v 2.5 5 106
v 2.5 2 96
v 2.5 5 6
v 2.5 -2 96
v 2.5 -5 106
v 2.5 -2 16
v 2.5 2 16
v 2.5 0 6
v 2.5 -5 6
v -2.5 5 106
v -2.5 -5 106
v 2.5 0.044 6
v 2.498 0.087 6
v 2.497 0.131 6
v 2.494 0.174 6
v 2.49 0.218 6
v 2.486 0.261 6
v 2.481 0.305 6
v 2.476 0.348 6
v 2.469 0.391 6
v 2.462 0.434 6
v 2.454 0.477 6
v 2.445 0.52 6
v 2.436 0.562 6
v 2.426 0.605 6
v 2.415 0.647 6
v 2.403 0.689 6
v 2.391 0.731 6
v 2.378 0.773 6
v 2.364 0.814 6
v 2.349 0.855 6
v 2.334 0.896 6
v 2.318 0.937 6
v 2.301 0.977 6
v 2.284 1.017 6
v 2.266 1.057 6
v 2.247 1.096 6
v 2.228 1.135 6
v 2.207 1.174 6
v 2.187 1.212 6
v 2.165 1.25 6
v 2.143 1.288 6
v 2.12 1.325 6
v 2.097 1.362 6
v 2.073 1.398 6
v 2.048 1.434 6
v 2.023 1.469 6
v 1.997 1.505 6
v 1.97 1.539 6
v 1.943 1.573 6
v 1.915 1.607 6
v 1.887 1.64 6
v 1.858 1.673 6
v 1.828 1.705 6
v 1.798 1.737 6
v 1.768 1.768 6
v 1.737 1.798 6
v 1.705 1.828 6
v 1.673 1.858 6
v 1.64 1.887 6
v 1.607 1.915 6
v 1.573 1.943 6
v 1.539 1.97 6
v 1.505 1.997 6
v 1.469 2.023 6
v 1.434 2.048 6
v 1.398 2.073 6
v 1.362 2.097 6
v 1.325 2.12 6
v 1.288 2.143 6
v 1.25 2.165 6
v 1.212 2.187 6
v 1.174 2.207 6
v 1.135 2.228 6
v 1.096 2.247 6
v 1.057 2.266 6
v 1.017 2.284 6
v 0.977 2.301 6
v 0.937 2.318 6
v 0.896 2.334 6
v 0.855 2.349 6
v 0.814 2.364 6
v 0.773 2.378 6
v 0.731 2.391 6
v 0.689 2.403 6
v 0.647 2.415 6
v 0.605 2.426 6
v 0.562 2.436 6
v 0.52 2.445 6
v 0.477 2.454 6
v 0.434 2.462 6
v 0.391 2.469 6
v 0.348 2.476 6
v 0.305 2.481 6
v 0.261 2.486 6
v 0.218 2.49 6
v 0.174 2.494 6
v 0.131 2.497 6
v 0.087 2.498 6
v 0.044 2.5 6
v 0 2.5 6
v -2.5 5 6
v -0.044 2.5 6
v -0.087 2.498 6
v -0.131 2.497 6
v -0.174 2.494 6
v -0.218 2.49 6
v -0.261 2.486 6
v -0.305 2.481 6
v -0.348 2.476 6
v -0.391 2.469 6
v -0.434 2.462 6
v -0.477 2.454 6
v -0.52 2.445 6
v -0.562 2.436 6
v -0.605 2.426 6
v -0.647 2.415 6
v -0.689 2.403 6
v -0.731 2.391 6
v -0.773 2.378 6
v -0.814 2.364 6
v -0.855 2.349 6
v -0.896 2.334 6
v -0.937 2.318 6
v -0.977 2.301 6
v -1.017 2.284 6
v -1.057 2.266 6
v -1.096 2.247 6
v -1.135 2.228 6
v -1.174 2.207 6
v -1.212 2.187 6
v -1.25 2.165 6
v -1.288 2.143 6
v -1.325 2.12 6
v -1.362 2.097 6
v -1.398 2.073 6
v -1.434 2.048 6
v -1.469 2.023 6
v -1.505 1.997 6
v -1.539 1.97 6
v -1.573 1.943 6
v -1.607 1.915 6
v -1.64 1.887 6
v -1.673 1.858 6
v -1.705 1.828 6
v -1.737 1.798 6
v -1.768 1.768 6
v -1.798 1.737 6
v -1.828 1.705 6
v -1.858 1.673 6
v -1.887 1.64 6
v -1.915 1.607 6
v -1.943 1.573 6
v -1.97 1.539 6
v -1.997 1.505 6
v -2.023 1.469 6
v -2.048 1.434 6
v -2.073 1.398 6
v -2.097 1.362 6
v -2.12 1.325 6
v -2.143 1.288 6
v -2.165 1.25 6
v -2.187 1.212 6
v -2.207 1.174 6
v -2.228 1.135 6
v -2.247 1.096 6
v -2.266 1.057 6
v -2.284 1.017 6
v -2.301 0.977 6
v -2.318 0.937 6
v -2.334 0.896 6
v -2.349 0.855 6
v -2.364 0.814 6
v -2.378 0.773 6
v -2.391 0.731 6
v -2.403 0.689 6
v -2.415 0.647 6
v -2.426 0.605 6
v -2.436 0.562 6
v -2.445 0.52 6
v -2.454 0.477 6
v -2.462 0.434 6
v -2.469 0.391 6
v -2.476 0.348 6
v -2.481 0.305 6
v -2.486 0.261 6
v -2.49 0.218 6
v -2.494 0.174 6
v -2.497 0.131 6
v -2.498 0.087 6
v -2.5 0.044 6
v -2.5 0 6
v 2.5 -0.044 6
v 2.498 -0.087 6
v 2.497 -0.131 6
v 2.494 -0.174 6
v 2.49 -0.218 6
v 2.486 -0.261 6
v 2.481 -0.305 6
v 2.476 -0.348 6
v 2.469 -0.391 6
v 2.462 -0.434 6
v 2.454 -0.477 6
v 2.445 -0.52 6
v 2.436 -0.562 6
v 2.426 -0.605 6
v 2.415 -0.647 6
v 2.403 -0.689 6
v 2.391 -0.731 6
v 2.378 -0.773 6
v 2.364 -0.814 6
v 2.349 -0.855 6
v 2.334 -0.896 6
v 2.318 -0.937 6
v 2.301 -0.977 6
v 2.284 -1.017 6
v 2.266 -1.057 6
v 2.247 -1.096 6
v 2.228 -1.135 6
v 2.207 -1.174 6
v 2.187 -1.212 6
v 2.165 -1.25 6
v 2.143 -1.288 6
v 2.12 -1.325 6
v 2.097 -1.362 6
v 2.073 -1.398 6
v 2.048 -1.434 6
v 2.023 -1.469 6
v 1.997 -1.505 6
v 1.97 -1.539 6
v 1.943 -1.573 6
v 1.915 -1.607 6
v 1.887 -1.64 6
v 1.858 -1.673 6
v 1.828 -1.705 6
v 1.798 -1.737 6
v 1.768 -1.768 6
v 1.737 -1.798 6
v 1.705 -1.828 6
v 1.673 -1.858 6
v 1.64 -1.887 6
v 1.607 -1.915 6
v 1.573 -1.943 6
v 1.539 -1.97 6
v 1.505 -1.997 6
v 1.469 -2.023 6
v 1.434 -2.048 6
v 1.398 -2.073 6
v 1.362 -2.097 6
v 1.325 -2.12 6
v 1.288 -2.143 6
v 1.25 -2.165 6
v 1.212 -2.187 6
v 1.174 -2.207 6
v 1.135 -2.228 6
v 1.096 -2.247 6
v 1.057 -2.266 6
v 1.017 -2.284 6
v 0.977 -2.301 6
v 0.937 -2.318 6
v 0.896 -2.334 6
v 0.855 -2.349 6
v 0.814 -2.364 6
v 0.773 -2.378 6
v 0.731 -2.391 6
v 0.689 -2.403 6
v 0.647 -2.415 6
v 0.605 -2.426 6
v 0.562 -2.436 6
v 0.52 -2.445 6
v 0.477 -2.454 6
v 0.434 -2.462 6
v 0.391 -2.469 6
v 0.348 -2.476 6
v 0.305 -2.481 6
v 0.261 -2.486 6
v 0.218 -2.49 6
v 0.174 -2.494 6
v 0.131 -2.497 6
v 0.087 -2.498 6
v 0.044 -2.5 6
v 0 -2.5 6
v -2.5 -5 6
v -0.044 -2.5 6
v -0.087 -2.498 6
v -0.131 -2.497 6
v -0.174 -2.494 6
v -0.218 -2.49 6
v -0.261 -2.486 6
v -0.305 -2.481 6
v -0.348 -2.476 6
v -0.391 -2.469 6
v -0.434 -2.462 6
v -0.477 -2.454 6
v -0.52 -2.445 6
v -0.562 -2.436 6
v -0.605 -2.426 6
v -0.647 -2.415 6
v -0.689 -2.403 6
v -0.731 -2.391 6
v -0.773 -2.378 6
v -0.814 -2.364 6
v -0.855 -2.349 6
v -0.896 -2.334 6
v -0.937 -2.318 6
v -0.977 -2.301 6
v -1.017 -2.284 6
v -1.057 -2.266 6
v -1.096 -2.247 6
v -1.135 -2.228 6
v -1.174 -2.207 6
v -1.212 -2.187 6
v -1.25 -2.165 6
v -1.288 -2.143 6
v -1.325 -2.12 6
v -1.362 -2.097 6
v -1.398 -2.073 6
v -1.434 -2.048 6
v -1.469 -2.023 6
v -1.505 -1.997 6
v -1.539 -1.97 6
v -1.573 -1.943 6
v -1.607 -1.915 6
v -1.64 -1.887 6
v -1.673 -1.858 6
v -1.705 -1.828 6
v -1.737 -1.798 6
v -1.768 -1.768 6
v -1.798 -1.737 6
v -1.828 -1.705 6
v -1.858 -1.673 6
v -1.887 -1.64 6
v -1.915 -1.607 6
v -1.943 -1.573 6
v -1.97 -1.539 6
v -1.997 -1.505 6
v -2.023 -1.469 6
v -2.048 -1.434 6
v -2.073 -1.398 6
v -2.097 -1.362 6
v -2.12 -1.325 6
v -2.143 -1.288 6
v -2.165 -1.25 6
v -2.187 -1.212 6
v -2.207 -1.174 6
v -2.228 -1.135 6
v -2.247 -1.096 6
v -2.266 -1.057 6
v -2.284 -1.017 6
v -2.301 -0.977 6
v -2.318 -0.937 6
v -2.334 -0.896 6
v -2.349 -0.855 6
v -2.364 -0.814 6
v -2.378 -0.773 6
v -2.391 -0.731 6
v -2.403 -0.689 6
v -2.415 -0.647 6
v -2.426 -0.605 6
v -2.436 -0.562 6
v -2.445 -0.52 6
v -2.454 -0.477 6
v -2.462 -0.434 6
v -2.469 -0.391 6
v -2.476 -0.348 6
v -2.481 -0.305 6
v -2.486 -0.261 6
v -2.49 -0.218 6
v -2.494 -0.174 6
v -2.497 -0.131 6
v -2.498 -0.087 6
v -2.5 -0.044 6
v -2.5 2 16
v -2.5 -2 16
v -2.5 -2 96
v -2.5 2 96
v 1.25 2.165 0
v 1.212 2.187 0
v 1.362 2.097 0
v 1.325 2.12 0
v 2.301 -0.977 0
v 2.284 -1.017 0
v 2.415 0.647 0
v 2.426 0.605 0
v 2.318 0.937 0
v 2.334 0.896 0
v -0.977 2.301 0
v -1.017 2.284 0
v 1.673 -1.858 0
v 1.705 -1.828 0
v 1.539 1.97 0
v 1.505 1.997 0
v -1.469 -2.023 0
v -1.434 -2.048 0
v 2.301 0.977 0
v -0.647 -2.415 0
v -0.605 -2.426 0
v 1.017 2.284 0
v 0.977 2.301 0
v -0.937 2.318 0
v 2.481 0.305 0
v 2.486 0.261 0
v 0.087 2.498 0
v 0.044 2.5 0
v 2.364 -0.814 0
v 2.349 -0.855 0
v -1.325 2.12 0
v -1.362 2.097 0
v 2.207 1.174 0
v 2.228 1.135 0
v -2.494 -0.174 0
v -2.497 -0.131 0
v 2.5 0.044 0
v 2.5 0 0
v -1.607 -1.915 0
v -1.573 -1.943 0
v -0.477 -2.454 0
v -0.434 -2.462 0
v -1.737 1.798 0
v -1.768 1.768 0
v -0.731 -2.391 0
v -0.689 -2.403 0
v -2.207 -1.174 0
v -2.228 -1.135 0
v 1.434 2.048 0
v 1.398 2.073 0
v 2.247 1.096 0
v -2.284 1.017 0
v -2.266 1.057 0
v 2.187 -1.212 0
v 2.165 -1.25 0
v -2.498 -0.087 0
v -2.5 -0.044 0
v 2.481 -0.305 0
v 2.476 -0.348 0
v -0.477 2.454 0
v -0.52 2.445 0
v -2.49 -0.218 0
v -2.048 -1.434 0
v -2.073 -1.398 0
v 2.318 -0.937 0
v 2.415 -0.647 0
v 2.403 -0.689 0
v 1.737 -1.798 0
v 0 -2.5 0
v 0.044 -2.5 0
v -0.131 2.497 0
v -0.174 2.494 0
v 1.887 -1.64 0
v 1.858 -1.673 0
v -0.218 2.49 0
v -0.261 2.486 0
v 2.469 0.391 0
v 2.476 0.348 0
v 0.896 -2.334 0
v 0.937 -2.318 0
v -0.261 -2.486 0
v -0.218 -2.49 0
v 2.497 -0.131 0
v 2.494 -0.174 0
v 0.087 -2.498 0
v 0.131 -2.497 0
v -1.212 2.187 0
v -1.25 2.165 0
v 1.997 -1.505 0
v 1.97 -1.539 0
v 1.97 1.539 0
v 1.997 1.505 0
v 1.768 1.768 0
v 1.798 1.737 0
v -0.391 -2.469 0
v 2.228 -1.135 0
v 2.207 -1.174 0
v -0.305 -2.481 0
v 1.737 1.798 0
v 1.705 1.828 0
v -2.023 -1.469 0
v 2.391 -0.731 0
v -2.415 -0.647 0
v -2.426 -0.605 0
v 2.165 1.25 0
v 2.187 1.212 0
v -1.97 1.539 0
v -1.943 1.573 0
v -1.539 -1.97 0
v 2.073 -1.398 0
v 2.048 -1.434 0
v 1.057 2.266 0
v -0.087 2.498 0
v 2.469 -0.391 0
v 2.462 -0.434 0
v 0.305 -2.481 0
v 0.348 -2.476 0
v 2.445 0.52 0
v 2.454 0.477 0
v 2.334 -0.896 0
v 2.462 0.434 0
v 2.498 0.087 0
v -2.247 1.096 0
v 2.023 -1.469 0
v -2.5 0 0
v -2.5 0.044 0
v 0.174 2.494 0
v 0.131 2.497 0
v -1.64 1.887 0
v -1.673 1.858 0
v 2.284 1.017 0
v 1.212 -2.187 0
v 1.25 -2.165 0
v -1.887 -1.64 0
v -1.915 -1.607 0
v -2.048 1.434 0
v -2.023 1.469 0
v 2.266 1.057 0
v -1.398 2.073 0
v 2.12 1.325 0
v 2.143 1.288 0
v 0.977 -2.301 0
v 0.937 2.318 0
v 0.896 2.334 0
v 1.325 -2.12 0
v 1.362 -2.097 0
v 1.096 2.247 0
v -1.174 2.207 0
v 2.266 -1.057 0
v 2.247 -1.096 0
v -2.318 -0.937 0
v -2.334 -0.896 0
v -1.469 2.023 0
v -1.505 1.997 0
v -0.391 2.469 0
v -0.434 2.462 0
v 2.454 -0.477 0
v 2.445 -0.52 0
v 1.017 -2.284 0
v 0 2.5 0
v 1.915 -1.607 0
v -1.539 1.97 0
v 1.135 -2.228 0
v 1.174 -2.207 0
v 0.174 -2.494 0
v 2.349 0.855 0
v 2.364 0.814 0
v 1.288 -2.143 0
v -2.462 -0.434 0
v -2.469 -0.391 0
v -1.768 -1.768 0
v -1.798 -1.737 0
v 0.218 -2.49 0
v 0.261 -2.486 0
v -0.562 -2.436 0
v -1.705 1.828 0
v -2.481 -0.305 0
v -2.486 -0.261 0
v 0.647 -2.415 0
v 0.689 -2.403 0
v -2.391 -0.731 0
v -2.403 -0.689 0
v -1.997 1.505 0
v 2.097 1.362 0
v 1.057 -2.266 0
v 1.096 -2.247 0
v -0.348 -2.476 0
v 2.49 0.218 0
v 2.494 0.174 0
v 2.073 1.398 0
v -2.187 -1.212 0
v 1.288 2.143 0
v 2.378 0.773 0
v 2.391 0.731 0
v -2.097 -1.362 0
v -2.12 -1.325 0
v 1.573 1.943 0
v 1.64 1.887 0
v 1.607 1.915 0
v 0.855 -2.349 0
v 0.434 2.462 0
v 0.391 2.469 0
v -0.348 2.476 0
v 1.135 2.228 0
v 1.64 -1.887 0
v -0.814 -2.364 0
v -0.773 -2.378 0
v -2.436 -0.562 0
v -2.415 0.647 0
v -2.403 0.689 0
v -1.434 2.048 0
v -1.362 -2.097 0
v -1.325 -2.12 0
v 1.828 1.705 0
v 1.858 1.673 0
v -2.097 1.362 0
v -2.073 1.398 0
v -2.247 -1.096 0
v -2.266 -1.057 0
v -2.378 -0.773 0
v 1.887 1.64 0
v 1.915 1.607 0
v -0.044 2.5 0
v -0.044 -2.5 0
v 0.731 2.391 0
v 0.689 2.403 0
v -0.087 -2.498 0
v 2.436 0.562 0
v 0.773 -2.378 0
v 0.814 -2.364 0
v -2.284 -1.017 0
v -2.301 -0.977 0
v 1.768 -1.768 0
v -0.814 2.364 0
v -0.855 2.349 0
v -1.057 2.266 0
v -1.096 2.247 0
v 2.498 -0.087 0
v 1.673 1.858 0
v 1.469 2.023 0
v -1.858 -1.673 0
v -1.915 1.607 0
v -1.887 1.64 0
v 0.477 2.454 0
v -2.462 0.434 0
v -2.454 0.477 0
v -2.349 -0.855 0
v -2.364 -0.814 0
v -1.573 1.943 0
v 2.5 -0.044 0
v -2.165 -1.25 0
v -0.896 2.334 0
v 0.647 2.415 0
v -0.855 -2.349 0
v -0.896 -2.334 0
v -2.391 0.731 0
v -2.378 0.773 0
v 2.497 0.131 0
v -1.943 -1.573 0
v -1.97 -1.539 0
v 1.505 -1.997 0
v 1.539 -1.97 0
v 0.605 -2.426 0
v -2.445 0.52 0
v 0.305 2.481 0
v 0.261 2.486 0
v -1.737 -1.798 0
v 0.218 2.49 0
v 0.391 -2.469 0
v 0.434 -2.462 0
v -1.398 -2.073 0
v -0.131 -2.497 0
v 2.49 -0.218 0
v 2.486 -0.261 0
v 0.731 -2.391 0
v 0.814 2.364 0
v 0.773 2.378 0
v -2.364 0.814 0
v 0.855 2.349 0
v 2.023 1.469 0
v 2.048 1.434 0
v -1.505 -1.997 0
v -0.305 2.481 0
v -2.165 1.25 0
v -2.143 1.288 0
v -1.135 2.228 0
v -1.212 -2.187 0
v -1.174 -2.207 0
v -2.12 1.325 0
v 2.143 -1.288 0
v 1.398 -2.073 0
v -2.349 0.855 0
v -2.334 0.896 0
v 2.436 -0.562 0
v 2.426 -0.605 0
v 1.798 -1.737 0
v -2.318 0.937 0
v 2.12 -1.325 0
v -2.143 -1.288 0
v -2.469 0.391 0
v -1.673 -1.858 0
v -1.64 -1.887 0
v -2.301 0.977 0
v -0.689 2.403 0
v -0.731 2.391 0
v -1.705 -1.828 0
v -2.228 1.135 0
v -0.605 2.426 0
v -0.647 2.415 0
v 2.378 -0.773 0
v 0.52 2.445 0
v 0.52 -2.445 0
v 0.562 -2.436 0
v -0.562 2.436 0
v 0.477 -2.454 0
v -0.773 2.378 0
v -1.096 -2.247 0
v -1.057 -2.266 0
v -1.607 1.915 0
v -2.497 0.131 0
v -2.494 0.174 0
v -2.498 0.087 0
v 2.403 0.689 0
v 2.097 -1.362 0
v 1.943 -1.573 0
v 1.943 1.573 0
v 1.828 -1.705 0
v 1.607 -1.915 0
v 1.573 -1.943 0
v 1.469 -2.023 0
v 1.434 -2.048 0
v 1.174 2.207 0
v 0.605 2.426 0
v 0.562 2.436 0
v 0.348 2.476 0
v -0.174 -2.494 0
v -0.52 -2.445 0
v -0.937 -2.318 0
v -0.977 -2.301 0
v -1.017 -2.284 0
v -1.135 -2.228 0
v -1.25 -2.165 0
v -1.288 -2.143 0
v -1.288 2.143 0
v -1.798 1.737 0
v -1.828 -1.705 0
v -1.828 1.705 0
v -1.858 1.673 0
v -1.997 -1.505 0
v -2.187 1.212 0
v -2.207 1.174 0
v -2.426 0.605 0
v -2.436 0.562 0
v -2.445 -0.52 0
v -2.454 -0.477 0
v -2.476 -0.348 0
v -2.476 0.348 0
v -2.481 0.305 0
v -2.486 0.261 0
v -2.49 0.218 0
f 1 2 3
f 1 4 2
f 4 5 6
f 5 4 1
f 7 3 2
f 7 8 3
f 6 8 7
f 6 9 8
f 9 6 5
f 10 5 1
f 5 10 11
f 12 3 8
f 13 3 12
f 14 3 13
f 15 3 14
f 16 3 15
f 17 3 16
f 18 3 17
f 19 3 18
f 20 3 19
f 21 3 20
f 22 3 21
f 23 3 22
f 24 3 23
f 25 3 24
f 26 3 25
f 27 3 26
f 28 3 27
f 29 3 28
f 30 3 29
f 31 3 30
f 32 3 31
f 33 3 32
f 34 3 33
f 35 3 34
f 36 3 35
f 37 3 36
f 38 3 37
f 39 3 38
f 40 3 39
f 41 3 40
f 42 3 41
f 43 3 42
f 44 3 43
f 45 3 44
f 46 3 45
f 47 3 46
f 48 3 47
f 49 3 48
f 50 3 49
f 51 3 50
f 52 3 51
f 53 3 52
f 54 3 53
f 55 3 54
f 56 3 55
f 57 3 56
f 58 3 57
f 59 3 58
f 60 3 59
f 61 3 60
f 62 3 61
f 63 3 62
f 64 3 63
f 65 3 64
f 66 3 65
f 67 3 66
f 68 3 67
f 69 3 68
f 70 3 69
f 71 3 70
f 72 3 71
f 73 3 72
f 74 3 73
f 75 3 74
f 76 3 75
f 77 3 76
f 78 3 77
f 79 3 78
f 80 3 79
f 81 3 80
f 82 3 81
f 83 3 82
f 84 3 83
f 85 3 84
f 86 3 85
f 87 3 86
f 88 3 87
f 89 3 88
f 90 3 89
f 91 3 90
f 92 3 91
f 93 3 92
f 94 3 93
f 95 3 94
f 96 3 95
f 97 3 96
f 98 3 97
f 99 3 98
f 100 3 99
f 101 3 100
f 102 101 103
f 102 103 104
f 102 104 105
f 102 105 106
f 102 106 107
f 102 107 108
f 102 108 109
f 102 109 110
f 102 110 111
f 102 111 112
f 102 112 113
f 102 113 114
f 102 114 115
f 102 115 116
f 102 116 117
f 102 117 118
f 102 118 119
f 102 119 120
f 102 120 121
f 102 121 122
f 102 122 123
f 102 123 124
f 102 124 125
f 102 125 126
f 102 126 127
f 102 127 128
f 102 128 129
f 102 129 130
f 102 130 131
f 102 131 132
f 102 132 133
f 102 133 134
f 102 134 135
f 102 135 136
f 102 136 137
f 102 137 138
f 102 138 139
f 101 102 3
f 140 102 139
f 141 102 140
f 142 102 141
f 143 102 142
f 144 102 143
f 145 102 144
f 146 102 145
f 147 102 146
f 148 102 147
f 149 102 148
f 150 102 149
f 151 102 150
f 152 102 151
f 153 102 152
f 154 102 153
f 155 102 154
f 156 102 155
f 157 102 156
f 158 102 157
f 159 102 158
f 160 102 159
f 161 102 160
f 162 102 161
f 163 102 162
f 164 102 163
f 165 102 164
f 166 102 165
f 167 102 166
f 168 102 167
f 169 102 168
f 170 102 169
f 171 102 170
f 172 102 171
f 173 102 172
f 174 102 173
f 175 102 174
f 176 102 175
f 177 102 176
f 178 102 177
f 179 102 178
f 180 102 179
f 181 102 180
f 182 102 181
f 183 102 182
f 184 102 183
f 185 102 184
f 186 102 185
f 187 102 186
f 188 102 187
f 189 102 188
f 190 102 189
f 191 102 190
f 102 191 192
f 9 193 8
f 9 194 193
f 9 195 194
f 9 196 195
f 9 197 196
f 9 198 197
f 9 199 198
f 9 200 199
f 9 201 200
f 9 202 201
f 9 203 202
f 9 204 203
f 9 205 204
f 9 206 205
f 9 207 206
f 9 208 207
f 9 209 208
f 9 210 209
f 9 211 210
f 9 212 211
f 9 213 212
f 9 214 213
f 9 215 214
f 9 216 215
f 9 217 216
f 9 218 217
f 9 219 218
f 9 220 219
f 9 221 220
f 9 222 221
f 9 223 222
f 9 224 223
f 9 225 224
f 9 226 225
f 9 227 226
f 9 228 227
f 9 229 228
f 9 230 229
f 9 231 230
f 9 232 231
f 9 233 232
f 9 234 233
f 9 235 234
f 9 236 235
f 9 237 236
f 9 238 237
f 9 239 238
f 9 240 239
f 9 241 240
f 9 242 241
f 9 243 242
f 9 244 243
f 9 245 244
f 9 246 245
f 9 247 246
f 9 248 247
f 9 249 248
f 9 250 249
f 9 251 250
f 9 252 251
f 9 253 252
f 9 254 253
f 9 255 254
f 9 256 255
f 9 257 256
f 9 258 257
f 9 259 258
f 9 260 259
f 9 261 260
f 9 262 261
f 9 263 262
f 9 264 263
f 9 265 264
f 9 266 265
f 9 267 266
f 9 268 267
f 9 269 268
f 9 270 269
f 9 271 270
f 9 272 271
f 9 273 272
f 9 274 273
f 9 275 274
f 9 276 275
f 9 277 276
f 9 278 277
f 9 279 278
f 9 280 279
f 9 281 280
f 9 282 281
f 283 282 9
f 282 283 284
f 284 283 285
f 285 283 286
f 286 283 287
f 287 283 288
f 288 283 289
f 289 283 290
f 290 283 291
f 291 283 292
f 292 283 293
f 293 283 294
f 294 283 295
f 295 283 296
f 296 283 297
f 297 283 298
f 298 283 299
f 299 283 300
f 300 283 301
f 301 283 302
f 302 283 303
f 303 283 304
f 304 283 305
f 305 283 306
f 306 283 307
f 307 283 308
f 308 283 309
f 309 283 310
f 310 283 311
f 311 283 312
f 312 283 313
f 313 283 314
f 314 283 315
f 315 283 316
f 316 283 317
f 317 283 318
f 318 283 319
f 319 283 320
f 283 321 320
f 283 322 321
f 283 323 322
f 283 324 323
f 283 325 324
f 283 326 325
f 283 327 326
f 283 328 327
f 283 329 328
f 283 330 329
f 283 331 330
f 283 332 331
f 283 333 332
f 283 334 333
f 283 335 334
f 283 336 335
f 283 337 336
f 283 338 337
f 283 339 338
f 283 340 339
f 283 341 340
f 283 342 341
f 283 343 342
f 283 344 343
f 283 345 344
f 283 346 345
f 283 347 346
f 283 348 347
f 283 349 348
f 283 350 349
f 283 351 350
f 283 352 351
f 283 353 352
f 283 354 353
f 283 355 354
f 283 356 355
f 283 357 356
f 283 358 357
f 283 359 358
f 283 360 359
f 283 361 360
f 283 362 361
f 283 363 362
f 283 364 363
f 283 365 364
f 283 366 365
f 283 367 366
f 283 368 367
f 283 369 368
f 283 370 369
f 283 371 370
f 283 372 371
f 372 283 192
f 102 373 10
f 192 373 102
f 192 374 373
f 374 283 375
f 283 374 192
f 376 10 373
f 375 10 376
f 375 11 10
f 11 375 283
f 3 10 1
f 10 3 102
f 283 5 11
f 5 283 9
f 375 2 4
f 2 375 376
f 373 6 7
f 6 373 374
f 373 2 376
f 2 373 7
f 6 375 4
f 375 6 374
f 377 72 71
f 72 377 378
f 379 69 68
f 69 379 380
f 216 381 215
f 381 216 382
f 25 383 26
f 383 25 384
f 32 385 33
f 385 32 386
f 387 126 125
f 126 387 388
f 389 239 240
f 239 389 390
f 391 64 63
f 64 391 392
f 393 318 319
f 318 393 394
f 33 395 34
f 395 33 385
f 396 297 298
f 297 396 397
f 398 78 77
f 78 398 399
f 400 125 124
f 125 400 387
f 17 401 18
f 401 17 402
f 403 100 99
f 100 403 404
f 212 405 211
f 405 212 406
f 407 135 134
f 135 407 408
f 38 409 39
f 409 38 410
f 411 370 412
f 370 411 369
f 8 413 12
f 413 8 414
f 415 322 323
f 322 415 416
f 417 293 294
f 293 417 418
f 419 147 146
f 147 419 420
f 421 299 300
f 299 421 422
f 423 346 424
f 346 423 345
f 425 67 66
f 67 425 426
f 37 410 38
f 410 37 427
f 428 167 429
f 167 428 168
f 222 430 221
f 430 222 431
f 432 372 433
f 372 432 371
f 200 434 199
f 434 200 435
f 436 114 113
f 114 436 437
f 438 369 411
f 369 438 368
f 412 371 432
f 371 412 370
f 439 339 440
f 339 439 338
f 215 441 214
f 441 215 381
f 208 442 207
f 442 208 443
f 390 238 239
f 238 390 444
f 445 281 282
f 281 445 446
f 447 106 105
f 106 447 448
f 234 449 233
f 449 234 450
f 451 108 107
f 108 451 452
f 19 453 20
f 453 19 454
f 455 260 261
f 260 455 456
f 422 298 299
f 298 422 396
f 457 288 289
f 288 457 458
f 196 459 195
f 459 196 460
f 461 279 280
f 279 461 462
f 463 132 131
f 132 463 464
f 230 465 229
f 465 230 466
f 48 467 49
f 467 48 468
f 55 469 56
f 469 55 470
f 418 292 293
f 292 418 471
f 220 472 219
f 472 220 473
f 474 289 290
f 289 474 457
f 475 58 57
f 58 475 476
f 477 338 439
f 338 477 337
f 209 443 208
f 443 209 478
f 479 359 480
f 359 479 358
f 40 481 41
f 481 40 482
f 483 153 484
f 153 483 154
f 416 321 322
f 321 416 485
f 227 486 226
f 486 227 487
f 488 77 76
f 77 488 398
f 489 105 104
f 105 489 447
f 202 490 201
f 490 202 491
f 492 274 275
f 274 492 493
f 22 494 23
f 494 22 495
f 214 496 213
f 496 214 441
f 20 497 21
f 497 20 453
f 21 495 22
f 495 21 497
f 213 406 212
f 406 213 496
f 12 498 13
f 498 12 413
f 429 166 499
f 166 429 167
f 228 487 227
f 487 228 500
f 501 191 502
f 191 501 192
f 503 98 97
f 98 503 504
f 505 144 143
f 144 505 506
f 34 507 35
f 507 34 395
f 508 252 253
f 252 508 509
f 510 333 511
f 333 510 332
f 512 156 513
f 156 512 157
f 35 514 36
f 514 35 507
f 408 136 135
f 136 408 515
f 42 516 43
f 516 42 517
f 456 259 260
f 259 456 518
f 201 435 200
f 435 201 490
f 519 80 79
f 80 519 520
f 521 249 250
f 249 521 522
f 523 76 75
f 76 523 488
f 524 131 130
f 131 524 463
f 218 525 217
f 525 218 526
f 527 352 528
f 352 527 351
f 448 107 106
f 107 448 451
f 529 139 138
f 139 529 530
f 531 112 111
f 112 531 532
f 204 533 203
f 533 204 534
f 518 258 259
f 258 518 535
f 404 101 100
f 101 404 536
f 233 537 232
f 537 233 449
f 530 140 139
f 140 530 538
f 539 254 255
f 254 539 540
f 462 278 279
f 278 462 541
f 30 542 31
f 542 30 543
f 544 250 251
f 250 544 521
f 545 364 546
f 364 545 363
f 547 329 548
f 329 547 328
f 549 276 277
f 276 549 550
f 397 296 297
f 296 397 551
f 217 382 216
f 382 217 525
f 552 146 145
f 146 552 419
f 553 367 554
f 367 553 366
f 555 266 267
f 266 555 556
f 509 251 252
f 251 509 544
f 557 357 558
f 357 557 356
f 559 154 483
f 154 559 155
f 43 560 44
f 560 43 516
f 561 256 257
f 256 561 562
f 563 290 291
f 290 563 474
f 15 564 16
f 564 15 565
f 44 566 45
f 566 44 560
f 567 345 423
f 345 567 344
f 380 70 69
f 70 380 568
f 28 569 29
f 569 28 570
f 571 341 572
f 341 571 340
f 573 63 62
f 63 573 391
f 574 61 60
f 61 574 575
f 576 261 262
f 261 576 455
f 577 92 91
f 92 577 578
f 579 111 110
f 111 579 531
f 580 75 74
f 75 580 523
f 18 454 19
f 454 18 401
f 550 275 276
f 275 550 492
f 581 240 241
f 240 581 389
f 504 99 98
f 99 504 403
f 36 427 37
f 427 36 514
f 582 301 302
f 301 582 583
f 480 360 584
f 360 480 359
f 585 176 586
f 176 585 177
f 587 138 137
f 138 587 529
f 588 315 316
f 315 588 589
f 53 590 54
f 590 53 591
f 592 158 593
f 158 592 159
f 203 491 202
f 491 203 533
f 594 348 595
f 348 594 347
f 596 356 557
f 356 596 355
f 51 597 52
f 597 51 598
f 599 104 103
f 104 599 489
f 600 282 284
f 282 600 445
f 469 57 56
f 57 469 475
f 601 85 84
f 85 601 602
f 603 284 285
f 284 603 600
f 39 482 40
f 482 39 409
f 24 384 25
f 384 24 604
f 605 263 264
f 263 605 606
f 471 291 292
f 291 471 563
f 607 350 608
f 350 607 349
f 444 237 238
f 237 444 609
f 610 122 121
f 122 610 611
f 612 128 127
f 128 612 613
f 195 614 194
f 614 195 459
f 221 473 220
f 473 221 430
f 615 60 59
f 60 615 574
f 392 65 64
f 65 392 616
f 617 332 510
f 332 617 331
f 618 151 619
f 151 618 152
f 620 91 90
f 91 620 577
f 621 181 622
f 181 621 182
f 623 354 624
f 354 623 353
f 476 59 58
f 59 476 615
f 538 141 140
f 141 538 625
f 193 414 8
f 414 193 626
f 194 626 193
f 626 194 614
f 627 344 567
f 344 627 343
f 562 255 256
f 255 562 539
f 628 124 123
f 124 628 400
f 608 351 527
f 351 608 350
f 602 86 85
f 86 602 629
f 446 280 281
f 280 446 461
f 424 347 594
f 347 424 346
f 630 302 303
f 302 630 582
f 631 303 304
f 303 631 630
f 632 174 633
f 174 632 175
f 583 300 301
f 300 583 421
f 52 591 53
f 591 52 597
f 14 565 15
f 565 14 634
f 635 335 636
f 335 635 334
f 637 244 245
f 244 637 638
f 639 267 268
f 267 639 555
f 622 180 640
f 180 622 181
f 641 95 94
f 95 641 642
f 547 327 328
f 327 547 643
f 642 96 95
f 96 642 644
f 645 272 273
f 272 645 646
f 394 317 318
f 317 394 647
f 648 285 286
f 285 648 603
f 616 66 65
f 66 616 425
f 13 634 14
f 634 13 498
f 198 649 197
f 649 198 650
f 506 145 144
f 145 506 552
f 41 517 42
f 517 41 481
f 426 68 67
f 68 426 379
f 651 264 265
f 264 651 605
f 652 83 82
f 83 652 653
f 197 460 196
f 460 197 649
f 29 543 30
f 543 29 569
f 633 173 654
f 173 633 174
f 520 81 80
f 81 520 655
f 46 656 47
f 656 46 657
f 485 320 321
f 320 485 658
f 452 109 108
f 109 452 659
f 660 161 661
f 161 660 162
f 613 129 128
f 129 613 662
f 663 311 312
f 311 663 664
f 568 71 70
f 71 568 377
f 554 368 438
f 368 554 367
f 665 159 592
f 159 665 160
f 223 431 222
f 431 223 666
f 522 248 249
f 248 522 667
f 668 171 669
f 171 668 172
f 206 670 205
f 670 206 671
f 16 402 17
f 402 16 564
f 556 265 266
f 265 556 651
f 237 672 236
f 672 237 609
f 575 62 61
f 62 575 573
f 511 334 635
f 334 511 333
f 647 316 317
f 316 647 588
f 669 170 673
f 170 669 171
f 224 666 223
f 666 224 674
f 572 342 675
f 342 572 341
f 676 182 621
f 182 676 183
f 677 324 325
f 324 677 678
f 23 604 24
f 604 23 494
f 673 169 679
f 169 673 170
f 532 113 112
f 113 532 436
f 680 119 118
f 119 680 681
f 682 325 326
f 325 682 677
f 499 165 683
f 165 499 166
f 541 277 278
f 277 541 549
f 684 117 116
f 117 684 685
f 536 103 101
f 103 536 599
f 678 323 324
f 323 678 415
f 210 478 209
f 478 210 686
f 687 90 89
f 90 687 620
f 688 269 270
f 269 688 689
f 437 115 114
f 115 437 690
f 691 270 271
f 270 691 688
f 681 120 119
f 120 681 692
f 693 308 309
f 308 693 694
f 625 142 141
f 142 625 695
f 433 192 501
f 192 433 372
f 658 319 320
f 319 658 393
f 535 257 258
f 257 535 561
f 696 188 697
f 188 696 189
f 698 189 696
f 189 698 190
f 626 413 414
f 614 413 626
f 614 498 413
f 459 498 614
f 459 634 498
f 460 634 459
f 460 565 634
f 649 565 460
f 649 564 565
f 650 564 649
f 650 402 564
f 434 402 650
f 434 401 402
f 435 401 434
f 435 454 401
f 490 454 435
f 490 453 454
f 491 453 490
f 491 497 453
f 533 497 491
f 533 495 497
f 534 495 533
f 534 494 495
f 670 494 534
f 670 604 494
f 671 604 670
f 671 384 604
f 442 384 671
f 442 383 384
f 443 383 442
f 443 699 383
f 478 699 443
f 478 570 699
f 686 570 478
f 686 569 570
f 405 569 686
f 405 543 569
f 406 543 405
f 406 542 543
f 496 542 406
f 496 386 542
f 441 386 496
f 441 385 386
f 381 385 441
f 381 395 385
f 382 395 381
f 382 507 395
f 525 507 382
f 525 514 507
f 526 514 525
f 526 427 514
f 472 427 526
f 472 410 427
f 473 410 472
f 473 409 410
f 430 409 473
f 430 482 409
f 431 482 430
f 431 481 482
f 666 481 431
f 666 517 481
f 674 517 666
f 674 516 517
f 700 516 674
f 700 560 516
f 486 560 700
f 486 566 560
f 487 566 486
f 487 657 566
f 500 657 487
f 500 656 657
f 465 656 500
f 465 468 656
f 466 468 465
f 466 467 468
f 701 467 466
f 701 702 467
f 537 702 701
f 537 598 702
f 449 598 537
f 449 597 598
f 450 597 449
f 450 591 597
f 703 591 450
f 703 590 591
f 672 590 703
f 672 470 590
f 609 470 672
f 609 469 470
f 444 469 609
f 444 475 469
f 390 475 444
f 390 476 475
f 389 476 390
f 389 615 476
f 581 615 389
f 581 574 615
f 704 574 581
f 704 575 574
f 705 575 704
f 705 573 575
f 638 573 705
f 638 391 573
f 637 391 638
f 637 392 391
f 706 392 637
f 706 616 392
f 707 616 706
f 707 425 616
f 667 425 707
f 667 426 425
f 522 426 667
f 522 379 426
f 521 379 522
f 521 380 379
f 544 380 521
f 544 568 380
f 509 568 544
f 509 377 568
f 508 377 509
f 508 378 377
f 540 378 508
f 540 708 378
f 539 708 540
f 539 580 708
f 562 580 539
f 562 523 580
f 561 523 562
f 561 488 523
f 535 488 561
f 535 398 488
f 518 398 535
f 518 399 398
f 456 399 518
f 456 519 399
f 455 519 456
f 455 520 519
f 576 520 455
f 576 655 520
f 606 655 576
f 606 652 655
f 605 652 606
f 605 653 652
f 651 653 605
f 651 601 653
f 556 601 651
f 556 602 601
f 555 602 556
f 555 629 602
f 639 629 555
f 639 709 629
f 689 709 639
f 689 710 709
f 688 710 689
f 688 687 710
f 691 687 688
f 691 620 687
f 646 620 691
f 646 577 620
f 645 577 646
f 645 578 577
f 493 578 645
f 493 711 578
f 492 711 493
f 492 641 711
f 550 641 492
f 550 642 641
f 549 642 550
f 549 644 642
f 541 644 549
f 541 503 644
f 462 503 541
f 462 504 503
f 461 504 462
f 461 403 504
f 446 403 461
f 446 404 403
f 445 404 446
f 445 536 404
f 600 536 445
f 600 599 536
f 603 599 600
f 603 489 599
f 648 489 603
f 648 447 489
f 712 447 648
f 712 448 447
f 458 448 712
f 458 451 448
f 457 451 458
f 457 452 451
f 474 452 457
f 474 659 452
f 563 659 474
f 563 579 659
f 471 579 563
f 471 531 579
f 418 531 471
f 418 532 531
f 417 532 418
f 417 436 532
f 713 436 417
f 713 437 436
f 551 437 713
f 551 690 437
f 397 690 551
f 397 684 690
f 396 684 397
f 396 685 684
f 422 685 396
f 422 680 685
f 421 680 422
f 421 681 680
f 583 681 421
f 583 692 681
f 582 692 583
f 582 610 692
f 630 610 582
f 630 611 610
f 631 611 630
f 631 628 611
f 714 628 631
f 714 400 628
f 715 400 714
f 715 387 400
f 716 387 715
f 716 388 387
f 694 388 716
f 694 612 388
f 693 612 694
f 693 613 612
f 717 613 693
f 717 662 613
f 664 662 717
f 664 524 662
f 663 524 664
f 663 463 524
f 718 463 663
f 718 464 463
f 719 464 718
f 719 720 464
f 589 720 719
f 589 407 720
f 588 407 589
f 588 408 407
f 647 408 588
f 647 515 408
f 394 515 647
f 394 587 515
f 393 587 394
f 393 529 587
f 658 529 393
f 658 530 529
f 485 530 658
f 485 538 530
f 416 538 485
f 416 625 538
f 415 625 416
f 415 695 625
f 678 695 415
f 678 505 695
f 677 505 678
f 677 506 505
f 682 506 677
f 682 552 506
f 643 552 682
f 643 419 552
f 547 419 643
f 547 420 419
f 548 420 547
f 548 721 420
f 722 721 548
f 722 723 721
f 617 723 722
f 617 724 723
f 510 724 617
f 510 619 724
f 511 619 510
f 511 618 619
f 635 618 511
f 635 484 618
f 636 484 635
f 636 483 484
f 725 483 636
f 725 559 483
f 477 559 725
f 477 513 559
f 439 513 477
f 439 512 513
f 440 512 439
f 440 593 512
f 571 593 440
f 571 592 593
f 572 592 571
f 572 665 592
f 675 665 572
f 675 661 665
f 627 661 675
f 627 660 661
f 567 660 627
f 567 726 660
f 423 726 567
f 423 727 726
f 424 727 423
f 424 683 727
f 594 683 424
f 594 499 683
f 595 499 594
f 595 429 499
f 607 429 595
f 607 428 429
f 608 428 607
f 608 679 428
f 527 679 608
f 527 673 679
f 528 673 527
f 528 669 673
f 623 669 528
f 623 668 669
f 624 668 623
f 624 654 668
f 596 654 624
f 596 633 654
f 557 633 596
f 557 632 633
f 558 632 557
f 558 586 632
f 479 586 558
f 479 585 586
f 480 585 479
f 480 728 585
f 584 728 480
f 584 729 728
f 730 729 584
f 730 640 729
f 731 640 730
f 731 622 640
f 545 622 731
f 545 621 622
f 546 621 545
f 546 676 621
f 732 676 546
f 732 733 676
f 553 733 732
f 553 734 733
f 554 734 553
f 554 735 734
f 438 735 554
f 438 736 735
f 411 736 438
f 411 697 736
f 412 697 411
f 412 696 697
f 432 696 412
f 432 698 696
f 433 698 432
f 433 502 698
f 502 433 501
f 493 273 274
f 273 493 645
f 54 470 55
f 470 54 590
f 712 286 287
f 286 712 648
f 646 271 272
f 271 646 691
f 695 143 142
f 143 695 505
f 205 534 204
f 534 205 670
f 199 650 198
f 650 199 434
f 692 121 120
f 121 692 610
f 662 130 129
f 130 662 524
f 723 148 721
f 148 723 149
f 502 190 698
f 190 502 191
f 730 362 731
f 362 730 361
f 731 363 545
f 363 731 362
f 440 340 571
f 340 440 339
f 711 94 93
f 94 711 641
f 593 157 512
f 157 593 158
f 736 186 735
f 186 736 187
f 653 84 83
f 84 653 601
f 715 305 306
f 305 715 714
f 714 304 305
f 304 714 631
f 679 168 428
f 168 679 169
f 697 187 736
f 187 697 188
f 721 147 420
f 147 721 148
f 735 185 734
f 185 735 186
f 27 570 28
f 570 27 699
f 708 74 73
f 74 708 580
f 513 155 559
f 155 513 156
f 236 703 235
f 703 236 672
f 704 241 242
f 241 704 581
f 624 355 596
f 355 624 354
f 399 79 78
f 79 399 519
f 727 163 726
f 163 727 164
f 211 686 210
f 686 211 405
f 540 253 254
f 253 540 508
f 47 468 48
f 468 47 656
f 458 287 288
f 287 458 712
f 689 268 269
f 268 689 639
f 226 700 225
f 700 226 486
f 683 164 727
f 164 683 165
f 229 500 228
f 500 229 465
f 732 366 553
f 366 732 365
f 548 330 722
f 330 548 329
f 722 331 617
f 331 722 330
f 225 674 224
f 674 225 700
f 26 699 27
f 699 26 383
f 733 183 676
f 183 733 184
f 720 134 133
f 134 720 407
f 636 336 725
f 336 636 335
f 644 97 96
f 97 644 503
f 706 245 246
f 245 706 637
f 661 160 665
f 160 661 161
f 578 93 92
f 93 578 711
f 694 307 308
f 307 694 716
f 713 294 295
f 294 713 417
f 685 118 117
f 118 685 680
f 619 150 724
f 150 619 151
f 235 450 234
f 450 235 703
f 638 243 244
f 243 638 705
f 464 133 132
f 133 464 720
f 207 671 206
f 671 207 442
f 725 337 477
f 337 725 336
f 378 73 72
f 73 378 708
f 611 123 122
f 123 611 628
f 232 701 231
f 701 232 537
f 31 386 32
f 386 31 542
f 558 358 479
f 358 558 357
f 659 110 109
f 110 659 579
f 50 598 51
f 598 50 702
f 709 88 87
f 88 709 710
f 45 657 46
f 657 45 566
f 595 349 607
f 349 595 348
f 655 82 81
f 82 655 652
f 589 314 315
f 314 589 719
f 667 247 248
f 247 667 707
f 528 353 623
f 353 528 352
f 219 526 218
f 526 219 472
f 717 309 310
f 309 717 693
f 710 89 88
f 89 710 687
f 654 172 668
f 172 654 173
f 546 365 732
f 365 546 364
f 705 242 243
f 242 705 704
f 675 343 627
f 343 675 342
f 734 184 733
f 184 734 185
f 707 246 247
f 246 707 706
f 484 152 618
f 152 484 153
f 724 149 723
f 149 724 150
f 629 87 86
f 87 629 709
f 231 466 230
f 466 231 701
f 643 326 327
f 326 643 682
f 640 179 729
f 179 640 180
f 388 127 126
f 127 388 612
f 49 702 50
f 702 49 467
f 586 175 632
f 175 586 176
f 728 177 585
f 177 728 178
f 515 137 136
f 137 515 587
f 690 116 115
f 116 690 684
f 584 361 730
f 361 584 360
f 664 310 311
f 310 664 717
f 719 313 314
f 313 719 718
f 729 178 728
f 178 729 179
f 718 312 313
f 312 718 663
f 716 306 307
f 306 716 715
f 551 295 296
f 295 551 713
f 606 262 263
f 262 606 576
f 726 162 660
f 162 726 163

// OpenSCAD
$fn=360;

diameter = 5;


cylinder(d=diameter, h=6);
translate([0, 0, 50+6])
	difference(){
		cube([diameter, 10, 100], center=true);
		#cube([diameter, 4, 80], center=true);
	}
